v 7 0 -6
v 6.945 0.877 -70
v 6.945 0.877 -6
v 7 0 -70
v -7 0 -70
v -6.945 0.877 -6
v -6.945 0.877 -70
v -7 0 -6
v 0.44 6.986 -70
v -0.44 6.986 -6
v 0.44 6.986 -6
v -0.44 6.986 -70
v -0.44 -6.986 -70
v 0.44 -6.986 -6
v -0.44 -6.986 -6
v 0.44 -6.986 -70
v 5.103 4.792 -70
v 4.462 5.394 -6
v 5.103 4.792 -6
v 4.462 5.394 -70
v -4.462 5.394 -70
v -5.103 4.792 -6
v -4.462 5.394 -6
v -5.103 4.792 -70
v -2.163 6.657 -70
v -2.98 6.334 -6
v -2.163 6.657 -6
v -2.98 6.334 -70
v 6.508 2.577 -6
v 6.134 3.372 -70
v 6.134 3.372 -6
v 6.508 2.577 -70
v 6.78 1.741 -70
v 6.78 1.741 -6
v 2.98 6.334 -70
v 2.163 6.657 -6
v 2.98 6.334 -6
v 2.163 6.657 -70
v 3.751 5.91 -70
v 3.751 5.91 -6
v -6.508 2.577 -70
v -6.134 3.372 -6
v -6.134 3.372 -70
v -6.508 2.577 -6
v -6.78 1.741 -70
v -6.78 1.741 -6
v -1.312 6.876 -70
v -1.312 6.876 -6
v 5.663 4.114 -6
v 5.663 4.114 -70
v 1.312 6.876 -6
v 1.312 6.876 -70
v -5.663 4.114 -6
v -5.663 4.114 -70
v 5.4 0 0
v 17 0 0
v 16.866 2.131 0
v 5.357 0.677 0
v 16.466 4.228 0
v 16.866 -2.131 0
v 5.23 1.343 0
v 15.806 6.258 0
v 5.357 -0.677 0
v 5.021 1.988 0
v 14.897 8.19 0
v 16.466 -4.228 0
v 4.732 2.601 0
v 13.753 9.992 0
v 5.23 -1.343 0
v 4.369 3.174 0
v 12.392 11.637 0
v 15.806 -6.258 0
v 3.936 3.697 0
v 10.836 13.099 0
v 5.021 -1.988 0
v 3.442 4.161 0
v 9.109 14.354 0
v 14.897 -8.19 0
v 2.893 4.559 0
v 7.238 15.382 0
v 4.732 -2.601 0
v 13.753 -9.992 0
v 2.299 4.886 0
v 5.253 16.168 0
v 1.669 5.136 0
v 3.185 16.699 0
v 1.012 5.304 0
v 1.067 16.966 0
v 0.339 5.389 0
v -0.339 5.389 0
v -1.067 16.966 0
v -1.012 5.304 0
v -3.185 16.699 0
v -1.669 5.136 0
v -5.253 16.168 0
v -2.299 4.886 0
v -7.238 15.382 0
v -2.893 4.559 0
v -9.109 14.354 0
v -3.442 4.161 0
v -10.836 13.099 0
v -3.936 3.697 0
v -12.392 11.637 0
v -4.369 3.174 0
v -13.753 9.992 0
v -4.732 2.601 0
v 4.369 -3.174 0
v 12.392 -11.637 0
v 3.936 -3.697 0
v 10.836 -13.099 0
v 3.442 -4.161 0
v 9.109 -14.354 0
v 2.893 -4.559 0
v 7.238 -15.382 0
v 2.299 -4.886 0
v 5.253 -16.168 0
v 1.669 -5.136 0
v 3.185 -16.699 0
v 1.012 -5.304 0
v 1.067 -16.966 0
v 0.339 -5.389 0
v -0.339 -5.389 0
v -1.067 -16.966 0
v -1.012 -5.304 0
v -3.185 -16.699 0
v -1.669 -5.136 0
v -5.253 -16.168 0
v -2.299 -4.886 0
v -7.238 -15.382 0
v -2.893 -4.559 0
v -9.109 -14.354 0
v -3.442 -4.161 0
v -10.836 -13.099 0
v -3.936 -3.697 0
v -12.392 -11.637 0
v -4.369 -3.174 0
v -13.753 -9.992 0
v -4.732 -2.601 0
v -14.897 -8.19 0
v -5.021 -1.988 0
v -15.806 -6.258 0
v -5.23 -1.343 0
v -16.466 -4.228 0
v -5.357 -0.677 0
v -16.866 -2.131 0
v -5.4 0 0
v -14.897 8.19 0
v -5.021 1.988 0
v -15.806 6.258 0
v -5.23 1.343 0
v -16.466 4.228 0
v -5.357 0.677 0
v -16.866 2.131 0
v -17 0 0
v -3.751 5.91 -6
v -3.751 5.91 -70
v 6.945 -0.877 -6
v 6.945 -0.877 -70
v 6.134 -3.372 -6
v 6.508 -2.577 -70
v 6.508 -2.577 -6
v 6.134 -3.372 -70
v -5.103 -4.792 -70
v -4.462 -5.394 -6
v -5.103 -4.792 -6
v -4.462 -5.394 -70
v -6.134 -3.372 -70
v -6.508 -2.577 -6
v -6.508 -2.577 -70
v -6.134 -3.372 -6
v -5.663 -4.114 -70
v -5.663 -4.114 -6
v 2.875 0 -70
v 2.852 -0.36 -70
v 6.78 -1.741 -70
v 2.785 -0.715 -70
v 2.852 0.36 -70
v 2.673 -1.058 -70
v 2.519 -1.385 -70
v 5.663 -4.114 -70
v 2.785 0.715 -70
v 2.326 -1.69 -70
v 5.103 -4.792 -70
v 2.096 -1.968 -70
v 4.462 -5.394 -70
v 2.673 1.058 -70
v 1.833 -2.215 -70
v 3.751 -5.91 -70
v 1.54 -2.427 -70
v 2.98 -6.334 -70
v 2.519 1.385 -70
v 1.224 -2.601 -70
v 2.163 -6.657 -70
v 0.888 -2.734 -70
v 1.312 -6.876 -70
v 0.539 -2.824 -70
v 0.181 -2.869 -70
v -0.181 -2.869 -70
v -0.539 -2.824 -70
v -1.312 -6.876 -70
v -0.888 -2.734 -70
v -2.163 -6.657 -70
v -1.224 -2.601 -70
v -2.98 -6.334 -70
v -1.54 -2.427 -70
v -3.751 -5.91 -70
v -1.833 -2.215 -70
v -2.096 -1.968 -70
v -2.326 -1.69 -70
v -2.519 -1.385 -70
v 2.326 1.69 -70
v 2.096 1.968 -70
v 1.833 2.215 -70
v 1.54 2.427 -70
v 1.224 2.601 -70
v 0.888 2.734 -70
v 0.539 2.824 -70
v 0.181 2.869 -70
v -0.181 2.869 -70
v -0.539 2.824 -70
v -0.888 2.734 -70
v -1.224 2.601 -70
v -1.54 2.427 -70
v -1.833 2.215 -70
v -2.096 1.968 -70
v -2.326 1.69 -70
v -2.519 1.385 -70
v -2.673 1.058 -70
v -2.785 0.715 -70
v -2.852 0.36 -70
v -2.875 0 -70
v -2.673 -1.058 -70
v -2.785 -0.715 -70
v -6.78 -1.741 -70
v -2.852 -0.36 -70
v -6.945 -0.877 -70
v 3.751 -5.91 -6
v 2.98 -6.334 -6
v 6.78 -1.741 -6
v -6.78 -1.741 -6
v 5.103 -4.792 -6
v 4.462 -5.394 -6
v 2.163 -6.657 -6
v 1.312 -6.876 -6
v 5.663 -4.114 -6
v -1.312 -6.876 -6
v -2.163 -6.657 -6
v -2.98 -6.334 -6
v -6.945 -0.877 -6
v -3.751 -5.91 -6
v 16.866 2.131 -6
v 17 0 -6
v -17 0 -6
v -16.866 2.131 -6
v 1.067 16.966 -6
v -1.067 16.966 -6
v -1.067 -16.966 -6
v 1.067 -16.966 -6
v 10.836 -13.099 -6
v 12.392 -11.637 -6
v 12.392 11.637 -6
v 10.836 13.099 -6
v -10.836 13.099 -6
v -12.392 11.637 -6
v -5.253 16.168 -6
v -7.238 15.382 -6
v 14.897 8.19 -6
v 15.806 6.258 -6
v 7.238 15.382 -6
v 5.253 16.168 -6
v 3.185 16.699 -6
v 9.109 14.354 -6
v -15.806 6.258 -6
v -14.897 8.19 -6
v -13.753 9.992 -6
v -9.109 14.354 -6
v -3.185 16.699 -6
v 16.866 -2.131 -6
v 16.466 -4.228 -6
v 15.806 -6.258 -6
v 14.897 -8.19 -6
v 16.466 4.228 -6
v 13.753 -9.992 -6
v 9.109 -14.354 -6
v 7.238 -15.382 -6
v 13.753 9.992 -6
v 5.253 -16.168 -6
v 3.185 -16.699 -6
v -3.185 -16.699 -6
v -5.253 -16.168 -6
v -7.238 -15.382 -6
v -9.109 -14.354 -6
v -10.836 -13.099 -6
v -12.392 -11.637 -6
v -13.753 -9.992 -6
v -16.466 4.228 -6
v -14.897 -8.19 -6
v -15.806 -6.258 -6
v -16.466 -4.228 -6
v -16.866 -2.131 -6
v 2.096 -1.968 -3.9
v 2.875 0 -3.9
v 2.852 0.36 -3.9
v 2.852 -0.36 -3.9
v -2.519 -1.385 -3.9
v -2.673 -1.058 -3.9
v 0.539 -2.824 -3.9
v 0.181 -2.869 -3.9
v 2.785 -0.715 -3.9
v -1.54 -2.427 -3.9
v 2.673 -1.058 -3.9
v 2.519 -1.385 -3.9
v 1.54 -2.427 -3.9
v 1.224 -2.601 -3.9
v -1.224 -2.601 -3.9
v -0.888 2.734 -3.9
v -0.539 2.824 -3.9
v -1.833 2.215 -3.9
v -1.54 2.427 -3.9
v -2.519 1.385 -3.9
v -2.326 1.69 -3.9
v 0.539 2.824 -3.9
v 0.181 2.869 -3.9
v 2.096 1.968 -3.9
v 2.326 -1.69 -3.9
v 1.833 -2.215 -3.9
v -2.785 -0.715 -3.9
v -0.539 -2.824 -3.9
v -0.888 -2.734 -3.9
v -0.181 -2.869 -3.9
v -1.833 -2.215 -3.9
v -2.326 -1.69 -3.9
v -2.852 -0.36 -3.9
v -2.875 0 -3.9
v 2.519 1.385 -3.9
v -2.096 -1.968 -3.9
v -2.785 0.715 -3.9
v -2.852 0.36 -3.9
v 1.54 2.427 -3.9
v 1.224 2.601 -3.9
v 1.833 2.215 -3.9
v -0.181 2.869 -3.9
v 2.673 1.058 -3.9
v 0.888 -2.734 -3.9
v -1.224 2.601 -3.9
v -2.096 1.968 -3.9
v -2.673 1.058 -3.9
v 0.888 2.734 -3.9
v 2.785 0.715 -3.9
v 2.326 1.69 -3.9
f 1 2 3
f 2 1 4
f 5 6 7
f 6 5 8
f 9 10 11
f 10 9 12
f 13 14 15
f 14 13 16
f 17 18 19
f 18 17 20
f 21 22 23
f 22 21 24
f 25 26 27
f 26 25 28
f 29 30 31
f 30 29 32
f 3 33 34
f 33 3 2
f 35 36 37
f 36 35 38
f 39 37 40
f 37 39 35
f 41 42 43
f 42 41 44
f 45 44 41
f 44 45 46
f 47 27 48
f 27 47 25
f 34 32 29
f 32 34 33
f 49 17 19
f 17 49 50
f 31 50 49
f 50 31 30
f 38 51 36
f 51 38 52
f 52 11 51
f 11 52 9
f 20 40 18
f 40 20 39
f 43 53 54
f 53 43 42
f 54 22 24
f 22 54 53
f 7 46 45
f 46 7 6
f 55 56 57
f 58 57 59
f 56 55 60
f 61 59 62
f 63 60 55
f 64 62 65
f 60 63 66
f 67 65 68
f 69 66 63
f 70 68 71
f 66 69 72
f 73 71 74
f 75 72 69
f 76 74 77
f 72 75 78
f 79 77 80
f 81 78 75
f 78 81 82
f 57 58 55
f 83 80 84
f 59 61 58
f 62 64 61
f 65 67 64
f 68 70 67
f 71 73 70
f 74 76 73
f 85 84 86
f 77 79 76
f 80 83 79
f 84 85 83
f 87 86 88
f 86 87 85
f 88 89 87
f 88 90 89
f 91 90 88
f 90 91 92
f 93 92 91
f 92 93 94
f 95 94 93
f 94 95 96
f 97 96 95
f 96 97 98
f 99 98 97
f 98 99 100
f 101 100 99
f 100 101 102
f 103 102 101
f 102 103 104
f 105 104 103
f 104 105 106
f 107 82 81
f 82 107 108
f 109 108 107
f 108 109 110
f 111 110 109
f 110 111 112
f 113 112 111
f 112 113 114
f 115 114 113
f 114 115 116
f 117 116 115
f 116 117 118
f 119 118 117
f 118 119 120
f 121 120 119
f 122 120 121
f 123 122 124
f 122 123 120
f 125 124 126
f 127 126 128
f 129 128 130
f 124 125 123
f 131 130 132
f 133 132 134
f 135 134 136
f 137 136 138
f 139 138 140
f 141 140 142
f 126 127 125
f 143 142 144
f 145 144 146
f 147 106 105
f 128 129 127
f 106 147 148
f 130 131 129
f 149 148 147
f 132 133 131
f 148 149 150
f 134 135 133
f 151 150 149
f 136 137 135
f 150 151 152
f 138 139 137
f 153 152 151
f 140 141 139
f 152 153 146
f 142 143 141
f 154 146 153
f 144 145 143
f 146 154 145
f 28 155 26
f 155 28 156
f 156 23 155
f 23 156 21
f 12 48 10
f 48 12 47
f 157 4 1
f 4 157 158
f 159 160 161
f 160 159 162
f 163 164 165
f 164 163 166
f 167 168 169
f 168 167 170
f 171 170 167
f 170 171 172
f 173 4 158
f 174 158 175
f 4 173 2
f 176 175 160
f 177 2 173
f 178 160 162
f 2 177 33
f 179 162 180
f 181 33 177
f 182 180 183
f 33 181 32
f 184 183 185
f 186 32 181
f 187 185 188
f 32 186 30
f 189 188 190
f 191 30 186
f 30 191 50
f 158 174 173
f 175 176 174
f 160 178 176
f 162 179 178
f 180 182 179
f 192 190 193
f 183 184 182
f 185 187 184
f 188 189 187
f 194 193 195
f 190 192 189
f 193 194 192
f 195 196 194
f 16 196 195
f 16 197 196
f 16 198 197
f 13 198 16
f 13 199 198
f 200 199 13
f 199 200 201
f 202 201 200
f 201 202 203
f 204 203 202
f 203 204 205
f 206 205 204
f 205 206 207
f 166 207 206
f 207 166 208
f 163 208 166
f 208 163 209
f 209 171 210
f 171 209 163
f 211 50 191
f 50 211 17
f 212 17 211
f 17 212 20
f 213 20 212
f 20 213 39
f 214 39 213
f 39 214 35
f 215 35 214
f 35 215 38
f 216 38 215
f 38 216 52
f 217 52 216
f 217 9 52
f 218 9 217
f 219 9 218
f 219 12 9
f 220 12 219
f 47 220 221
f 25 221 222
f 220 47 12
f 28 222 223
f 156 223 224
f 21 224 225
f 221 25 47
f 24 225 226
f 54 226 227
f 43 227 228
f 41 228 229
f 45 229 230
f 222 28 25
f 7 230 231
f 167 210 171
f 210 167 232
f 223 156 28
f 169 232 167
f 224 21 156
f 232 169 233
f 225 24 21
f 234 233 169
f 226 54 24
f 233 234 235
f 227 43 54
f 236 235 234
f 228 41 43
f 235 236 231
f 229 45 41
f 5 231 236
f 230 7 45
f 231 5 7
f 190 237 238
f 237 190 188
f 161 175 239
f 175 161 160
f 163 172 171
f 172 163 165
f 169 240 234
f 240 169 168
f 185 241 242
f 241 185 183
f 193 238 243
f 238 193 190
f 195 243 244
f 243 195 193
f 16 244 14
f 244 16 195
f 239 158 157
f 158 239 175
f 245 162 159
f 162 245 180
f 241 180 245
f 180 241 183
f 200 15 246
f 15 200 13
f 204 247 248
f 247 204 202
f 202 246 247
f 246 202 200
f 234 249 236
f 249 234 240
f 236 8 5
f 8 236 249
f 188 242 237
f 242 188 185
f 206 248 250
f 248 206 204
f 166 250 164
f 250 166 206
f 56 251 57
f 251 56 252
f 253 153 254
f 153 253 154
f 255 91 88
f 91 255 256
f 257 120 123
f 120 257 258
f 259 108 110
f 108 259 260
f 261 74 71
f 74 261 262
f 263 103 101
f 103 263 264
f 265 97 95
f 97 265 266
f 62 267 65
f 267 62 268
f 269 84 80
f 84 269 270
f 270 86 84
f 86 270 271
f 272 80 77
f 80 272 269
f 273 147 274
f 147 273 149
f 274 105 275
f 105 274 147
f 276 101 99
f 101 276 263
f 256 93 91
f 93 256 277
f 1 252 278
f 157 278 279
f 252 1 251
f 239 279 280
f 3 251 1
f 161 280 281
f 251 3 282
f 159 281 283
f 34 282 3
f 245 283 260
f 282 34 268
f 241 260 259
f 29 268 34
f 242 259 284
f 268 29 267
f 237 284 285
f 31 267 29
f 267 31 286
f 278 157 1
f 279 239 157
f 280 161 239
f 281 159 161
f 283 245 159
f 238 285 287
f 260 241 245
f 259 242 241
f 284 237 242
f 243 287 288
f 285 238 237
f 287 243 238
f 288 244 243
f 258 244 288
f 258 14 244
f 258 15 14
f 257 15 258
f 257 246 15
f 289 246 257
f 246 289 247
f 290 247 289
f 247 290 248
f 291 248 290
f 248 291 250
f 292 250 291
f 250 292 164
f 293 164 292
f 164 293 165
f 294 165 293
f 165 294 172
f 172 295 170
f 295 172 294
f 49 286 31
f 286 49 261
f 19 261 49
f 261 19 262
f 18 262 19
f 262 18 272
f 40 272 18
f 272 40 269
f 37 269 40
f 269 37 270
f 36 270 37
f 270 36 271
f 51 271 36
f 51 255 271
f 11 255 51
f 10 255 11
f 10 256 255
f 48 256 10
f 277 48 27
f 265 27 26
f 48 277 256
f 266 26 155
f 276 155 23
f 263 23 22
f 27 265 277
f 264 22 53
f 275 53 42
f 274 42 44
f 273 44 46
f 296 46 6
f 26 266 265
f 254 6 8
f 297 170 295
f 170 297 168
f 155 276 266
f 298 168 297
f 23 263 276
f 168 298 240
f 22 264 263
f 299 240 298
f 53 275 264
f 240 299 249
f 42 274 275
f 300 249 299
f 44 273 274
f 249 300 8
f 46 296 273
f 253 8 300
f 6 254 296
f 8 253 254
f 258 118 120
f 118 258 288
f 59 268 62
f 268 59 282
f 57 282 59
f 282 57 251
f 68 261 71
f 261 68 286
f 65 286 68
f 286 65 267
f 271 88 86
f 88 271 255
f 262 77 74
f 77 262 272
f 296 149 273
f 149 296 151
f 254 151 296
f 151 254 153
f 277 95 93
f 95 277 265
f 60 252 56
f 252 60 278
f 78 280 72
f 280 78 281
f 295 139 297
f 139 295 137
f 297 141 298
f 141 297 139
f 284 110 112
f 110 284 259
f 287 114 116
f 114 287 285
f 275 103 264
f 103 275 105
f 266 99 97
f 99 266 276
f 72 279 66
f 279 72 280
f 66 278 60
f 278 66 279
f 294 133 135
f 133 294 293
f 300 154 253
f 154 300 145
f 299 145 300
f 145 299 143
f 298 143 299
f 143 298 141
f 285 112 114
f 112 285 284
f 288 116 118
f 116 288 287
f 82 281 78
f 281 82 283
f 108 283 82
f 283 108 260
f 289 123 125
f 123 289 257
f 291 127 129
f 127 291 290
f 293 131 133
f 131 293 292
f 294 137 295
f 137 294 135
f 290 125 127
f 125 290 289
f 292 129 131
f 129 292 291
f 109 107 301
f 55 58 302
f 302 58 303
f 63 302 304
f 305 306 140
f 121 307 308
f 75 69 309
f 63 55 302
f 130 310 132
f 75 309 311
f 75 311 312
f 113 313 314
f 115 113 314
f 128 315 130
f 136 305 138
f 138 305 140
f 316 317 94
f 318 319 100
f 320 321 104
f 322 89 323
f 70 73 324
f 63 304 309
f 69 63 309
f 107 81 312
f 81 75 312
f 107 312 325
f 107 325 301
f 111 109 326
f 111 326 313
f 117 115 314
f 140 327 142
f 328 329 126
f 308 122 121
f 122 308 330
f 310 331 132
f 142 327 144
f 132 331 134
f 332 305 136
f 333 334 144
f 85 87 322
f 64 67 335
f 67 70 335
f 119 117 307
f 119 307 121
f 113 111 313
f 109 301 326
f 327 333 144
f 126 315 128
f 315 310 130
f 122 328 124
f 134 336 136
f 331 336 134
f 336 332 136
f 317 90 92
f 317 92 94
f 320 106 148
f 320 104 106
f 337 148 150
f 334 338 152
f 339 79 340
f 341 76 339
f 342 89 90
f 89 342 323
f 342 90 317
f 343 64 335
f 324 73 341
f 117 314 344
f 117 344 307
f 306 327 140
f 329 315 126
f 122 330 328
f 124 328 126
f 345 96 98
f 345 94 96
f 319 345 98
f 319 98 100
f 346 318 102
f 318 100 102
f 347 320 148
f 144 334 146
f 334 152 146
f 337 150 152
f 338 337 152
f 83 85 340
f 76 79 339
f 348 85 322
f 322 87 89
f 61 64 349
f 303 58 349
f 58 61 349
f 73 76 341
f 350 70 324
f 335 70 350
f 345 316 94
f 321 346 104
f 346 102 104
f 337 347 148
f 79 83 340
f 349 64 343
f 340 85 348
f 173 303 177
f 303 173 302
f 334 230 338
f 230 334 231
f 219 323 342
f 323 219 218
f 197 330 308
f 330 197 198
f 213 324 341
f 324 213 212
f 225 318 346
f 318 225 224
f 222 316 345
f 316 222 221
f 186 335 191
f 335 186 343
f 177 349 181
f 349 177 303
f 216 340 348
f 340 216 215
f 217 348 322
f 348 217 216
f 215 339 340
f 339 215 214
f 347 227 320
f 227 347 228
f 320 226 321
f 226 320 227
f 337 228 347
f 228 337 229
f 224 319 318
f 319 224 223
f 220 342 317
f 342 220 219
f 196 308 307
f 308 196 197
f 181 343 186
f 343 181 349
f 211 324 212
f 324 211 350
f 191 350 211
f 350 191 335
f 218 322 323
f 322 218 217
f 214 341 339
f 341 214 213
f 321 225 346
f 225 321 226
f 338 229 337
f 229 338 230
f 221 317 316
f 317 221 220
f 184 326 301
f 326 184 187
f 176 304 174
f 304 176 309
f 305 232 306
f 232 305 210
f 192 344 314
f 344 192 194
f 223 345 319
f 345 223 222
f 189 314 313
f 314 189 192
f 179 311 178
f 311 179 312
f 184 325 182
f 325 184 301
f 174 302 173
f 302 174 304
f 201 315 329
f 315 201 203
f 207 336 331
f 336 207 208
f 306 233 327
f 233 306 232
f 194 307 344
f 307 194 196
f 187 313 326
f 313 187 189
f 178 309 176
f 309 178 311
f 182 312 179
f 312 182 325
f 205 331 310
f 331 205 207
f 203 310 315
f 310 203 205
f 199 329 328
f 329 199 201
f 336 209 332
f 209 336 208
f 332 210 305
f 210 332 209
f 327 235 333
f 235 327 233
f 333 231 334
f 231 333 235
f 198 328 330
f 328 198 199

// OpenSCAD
$fn = 50;


difference() {
	union() {
		translate(v = [0, 0, -70.0000000000]) {
			cylinder(h = 70, r = 7.0000000000);
		}
		translate(v = [0, 0, -6.0000000000]) {
			cylinder(h = 6, r = 17.0000000000);
		}
	}
	union() {
		translate(v = [0, 0, 0]) {
			rotate(a = [0, 0, 0]) {
				difference() {
					union() {
						#translate(v = [0, 0, -70.0000000000]) {
							cylinder(h = 70, r = 2.6000000000);
						}
						#translate(v = [0, 0, -3.9000000000]) {
							cylinder(h = 3.9000000000, r = 7.0000000000, r1 = 2.8750000000, r2 = 5.4000000000);
						}
						#translate(v = [0, 0, -70.0000000000]) {
							cylinder(h = 70, r = 2.8750000000);
						}
						#translate(v = [0, 0, -70.0000000000]) {
							cylinder(h = 70, r = 2.6000000000);
						}
					}
					union();
				}
			}
		}
	}
}
